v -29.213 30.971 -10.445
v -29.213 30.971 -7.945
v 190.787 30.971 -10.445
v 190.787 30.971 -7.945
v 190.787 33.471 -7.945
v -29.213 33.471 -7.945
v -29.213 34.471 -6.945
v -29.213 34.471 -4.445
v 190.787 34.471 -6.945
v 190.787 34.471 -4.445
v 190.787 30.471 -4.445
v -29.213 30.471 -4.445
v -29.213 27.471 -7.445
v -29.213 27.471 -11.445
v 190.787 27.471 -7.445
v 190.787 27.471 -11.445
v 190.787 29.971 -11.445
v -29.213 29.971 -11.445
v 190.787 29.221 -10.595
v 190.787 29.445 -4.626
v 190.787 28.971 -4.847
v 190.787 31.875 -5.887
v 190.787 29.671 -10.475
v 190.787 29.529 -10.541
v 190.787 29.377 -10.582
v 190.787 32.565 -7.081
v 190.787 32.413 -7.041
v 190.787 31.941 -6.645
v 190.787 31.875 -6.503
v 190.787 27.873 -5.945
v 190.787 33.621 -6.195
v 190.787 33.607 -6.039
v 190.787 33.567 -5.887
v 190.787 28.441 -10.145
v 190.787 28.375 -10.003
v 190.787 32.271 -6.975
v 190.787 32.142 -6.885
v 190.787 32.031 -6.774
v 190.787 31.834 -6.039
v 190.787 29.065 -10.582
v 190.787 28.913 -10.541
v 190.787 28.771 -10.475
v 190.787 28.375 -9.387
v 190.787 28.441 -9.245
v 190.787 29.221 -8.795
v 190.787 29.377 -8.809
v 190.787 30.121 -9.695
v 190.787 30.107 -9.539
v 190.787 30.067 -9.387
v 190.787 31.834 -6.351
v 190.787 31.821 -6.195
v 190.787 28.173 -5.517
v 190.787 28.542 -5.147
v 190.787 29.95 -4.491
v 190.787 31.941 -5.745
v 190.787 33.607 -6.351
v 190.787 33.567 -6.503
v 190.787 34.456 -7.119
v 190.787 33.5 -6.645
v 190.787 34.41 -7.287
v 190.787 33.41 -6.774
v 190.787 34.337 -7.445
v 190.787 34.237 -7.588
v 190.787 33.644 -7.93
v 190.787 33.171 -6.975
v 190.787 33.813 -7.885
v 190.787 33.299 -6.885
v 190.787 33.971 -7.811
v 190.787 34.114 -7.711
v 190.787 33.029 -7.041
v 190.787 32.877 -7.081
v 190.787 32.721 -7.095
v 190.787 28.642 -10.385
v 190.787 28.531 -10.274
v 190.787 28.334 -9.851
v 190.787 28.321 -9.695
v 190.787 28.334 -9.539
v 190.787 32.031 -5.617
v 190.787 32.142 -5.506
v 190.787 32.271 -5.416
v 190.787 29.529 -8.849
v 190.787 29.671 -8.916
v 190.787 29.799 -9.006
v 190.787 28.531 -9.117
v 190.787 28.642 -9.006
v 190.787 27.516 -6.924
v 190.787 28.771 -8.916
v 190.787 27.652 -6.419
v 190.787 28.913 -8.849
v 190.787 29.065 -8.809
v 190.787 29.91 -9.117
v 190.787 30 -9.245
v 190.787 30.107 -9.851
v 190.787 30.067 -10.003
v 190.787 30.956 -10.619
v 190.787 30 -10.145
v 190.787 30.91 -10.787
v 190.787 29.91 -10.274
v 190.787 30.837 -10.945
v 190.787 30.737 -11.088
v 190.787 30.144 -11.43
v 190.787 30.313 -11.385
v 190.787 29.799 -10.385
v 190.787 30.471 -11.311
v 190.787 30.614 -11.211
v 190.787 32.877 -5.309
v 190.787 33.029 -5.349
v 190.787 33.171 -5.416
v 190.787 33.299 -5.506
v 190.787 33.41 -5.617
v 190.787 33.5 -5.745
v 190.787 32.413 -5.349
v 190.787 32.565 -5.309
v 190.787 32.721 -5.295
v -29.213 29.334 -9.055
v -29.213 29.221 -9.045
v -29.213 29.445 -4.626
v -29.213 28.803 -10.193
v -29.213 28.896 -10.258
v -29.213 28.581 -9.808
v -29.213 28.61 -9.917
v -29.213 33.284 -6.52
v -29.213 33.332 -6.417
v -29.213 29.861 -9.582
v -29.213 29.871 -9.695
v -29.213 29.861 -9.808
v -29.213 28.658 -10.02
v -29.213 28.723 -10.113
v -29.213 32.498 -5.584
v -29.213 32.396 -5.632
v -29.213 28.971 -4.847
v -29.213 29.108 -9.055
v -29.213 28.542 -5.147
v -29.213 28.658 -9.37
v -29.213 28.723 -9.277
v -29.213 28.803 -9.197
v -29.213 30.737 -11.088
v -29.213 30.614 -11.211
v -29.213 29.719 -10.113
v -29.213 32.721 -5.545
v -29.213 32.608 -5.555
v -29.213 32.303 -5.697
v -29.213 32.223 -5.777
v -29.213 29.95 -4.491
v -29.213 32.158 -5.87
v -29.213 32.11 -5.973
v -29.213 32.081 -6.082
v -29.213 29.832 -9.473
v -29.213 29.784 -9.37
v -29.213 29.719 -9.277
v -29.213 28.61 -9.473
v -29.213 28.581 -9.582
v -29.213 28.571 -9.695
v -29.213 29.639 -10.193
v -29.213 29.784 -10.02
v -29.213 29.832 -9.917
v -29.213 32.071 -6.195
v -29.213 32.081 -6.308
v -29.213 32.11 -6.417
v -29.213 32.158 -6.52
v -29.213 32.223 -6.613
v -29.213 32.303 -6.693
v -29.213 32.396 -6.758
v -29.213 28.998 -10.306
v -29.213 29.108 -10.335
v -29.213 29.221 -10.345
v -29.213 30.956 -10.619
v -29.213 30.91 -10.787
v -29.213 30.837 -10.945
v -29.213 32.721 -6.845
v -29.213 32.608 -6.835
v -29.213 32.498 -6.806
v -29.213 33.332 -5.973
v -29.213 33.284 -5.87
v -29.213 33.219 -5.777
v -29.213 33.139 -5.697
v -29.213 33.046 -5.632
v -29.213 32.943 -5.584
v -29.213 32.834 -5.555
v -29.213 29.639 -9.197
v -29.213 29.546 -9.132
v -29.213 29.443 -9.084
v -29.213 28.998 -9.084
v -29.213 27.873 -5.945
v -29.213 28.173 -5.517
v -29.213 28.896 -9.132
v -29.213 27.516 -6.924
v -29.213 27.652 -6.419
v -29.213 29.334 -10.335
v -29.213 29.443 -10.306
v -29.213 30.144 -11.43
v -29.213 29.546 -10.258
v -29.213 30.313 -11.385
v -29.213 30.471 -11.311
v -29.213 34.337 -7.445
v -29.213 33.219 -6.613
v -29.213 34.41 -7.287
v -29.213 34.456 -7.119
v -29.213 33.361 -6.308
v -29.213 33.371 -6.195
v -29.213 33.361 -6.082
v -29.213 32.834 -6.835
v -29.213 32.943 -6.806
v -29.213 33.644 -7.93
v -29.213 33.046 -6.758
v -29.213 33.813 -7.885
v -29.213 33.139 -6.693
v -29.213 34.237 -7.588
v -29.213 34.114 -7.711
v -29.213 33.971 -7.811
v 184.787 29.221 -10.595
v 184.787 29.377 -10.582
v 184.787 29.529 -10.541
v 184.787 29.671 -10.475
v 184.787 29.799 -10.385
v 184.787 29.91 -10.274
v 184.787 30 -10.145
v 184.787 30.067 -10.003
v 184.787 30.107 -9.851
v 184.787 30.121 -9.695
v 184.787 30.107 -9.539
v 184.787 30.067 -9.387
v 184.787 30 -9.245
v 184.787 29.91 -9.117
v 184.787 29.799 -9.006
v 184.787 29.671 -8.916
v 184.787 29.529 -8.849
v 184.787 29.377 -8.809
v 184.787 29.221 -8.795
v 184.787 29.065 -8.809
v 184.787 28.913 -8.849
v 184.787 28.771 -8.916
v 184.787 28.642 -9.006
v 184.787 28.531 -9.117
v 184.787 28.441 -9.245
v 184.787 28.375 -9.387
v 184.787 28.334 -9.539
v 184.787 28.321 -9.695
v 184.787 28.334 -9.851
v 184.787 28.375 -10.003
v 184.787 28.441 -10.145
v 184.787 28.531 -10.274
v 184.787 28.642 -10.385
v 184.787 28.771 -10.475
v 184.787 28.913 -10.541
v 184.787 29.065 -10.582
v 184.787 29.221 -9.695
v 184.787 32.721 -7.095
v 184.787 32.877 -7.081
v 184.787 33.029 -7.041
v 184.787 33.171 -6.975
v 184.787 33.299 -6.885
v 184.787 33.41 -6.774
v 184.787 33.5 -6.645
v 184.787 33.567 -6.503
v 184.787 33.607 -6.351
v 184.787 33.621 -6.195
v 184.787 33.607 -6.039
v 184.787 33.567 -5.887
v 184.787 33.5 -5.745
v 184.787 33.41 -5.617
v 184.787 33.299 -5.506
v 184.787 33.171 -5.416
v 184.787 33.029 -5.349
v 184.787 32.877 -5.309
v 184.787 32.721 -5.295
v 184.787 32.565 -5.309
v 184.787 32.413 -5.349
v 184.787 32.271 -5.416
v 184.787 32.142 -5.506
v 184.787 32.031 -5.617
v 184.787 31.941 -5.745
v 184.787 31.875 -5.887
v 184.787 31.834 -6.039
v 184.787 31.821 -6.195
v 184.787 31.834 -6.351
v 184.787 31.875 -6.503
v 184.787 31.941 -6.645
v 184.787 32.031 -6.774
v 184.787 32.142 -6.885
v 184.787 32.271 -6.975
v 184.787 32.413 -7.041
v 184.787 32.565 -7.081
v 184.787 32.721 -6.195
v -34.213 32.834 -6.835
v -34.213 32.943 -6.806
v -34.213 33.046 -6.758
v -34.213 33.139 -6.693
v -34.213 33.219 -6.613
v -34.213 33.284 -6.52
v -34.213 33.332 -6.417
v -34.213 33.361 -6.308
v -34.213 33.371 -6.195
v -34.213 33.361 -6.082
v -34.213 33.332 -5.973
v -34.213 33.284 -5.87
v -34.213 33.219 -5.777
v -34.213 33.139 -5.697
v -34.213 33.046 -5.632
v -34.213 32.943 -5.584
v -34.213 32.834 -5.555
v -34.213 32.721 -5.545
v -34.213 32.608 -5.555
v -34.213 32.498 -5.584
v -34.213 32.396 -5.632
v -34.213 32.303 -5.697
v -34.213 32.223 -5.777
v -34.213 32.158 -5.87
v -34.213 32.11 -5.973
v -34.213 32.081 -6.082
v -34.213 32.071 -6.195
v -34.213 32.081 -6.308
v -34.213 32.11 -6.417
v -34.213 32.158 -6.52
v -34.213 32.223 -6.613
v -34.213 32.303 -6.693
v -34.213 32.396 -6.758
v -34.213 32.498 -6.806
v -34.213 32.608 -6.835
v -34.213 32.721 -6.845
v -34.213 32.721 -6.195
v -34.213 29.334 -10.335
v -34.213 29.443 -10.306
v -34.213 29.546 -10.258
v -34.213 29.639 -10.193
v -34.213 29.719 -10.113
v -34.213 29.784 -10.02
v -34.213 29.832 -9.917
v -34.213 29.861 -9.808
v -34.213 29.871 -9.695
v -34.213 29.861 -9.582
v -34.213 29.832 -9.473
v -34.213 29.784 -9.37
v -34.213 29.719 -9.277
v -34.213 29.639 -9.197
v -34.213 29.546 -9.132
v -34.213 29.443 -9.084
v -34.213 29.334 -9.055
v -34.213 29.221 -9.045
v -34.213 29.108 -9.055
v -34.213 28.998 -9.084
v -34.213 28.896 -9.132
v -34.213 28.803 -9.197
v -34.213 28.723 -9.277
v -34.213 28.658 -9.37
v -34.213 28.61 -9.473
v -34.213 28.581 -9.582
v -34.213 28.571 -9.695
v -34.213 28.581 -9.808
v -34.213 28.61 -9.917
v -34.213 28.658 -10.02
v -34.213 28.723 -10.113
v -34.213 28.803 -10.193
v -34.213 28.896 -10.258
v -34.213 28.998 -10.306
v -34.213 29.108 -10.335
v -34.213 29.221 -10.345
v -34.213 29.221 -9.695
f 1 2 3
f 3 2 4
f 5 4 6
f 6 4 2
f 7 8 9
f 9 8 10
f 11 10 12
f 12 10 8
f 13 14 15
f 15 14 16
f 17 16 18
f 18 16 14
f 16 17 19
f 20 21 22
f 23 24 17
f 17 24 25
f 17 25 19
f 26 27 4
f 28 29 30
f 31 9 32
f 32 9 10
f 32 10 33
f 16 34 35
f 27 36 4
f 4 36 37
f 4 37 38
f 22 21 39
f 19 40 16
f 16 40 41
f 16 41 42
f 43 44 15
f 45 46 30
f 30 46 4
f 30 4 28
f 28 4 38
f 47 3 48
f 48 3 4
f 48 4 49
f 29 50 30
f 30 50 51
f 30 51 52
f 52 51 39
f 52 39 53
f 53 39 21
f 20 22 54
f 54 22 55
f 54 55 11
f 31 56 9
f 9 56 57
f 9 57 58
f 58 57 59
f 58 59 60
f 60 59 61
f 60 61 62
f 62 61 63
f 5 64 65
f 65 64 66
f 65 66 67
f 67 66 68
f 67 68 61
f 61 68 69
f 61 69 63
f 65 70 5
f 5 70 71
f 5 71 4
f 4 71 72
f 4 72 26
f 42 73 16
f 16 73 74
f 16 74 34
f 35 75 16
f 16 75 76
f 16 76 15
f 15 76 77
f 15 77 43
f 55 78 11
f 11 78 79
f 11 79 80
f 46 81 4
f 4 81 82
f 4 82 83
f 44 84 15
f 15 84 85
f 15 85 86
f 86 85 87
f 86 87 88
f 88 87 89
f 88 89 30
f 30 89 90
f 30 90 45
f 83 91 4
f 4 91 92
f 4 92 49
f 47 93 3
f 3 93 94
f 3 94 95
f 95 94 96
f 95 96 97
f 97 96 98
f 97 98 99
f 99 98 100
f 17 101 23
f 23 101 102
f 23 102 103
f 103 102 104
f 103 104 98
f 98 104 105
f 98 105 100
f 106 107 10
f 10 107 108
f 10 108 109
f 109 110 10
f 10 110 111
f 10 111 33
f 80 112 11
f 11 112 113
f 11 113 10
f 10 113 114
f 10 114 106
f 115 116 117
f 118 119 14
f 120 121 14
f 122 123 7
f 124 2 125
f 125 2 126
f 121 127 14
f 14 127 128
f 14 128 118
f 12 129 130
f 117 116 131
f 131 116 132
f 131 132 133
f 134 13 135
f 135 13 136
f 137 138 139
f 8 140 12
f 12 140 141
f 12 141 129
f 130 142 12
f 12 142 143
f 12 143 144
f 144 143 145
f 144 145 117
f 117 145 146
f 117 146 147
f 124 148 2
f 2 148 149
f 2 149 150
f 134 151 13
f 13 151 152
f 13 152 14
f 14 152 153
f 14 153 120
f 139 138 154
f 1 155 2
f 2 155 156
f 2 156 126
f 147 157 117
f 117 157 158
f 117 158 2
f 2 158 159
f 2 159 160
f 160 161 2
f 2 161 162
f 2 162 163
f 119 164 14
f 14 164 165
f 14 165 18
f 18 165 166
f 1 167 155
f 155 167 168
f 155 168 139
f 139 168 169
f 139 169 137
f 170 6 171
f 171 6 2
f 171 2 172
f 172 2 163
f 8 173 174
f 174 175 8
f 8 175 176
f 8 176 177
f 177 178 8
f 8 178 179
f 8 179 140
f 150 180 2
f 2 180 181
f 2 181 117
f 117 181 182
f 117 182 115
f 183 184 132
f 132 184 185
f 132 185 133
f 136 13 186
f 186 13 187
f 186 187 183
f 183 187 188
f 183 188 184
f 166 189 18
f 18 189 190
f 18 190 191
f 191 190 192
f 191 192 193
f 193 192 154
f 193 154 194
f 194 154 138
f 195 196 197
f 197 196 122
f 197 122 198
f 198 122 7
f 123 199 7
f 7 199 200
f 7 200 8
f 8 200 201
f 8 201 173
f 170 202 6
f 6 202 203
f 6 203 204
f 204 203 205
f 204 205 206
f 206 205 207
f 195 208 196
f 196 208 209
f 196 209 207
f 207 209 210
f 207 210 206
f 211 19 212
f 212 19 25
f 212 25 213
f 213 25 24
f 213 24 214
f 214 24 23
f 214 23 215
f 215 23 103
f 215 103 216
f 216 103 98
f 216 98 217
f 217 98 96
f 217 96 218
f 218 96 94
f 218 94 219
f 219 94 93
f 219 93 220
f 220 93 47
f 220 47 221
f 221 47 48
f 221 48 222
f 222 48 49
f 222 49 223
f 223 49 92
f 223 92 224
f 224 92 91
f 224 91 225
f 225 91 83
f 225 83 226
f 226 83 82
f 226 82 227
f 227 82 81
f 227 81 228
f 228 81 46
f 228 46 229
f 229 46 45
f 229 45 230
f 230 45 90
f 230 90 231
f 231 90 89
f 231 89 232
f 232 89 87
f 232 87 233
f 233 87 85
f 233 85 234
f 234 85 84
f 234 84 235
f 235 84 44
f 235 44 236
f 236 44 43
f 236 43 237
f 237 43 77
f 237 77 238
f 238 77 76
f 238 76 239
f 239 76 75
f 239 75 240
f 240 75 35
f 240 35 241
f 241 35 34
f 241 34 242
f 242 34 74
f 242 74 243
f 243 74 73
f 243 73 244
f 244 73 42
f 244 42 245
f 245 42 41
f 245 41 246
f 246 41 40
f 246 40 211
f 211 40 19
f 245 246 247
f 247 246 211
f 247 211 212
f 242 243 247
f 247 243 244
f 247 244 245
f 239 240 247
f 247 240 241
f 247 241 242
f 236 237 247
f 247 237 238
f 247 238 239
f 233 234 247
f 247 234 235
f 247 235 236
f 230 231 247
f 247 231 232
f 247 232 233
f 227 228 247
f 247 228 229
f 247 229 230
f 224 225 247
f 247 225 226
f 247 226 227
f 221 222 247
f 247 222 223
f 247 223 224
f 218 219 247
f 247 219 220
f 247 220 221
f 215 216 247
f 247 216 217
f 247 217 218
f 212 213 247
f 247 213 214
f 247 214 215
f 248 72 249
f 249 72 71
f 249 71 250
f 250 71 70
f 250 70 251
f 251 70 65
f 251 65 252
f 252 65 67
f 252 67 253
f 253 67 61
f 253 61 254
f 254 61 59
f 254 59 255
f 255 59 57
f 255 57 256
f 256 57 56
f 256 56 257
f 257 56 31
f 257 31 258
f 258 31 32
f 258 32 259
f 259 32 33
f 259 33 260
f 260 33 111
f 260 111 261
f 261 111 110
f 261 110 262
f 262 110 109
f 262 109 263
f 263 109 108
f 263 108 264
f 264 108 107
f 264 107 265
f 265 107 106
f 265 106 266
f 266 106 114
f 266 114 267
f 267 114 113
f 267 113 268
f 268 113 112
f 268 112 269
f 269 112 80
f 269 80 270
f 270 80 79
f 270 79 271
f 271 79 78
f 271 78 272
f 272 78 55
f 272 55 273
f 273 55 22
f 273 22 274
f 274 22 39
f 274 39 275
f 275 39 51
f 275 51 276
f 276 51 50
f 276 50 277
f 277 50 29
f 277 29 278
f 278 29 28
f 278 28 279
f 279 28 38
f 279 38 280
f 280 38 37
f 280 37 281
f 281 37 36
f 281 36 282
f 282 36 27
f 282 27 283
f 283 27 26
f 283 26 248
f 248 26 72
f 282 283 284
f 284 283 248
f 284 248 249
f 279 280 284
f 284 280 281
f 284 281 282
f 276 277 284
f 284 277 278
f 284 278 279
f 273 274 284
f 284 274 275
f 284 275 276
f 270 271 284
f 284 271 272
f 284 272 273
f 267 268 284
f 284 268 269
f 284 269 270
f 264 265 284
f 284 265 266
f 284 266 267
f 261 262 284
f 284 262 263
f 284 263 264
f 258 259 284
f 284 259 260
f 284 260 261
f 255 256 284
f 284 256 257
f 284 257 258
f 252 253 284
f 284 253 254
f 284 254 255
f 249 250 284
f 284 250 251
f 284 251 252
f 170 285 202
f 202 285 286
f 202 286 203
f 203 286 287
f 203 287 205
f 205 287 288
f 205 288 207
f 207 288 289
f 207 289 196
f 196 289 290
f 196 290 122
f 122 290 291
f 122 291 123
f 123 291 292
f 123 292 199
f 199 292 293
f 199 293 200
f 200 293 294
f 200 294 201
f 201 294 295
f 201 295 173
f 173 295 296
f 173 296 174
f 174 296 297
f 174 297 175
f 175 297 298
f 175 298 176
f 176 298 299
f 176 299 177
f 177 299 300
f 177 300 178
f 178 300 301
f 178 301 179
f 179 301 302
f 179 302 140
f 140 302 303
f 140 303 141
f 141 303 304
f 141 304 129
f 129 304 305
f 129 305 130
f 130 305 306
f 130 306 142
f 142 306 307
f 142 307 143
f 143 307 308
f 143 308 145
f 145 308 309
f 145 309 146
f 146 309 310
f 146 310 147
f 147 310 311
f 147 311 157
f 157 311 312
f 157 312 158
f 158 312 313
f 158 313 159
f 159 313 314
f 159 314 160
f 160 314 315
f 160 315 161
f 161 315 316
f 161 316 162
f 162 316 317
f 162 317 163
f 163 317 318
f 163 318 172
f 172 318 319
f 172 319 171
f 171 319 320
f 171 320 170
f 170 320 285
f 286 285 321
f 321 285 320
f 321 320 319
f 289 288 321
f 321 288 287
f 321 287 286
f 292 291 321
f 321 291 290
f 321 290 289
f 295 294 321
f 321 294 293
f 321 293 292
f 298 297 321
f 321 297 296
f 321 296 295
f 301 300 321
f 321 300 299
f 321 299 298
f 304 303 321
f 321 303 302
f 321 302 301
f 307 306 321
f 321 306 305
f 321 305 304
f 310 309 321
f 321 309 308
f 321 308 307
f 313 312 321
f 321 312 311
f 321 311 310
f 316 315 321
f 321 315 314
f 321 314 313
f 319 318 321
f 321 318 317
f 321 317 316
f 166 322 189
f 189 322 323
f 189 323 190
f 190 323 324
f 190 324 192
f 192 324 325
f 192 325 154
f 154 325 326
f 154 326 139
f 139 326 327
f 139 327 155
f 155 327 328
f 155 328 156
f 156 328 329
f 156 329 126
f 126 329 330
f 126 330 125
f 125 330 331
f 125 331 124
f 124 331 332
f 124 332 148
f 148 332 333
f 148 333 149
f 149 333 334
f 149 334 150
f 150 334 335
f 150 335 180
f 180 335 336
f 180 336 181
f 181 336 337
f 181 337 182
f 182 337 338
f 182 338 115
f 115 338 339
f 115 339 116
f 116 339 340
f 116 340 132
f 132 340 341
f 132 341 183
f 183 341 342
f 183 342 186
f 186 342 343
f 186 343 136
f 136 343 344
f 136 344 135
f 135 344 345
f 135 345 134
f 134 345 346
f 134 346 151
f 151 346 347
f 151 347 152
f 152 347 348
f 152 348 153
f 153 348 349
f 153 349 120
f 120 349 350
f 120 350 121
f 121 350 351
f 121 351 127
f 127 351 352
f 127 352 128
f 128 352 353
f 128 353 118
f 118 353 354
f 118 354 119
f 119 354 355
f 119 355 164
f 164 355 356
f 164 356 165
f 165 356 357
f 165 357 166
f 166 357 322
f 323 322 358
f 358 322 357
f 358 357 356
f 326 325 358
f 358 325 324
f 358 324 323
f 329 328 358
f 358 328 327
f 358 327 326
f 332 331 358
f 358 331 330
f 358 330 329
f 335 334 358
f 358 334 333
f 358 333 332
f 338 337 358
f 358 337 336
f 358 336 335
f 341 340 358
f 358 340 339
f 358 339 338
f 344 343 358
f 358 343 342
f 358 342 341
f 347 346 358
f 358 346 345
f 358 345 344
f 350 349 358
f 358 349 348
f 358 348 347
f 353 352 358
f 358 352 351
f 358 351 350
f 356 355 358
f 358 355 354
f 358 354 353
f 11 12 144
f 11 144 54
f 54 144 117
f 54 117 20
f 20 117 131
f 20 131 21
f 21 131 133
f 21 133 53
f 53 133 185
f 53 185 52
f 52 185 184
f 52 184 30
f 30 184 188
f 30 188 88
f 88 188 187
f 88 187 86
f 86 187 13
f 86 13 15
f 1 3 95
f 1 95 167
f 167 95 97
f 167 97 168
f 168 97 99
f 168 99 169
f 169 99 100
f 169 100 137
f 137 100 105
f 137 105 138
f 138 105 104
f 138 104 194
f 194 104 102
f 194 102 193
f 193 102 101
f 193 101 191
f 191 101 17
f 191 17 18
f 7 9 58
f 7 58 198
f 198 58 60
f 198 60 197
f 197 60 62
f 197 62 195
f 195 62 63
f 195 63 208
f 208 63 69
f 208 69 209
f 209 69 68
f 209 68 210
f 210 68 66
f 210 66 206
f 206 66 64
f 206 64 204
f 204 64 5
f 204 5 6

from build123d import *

# Parameters (mm, degrees)
BOSS_EXTRUDE1_DEPTH = 220
SKETCH2_R           = 0.9
CUT_EXTRUDE1_DEPTH  = 6
SKETCH1_3_R         = 0.65
BOSS_EXTRUDE2_DEPTH = 5
FILLET1_R           = 3
FILLET2_R           = 1


with BuildPart() as part:
    # Sketch1 → Boss-Extrude1 (new body)
    with BuildSketch(Plane(origin=(-29.212578399, 0, 0), x_dir=(0, 0, -1), z_dir=(1, 0, 0))):
        Polygon((7.945170891, 34.470791156), (4.445170891, 34.470791156), (4.445170891, 27.470791156), (11.445170891, 27.470791156), (11.445170891, 30.970791156), (7.945170891, 30.970791156), align=None)
    extrude(amount=BOSS_EXTRUDE1_DEPTH)

    # Sketch2 → Cut-Extrude1 (cut)
    with BuildSketch(Plane(origin=(190.787421601, 0, 0), x_dir=(0, 0, -1), z_dir=(1, 0, 0))):
        with Locations((6.195170891, 32.720791156)):
            Circle(SKETCH2_R)
        with Locations((9.695170891, 29.220791156)):
            Circle(SKETCH2_R)
    extrude(amount=-CUT_EXTRUDE1_DEPTH, mode=Mode.SUBTRACT)

    # Sketch1<3> → Boss-Extrude2 (add)
    with BuildSketch(Plane(origin=(-29.212578399, 0, 0), x_dir=(0, 0, -1), z_dir=(1, 0, 0))):
        with Locations((6.195170891, 32.720791156)):
            Circle(SKETCH1_3_R)
        with Locations((9.695170891, 29.220791156)):
            Circle(SKETCH1_3_R)
    extrude(amount=-BOSS_EXTRUDE2_DEPTH)

    # Fillet1
    fillet1_edges = [part.edges().sort_by_distance(p)[0] for p in [
        (80.787421601, 27.470791156, -4.445170891),
    ]]
    fillet(fillet1_edges, radius=FILLET1_R)

    # Fillet2
    fillet2_edges = [part.edges().sort_by_distance(p)[0] for p in [
        (80.787421601, 30.970791156, -11.445170891),
        (80.787421601, 34.470791156, -7.945170891),
    ]]
    fillet(fillet2_edges, radius=FILLET2_R)


solid = part.part
